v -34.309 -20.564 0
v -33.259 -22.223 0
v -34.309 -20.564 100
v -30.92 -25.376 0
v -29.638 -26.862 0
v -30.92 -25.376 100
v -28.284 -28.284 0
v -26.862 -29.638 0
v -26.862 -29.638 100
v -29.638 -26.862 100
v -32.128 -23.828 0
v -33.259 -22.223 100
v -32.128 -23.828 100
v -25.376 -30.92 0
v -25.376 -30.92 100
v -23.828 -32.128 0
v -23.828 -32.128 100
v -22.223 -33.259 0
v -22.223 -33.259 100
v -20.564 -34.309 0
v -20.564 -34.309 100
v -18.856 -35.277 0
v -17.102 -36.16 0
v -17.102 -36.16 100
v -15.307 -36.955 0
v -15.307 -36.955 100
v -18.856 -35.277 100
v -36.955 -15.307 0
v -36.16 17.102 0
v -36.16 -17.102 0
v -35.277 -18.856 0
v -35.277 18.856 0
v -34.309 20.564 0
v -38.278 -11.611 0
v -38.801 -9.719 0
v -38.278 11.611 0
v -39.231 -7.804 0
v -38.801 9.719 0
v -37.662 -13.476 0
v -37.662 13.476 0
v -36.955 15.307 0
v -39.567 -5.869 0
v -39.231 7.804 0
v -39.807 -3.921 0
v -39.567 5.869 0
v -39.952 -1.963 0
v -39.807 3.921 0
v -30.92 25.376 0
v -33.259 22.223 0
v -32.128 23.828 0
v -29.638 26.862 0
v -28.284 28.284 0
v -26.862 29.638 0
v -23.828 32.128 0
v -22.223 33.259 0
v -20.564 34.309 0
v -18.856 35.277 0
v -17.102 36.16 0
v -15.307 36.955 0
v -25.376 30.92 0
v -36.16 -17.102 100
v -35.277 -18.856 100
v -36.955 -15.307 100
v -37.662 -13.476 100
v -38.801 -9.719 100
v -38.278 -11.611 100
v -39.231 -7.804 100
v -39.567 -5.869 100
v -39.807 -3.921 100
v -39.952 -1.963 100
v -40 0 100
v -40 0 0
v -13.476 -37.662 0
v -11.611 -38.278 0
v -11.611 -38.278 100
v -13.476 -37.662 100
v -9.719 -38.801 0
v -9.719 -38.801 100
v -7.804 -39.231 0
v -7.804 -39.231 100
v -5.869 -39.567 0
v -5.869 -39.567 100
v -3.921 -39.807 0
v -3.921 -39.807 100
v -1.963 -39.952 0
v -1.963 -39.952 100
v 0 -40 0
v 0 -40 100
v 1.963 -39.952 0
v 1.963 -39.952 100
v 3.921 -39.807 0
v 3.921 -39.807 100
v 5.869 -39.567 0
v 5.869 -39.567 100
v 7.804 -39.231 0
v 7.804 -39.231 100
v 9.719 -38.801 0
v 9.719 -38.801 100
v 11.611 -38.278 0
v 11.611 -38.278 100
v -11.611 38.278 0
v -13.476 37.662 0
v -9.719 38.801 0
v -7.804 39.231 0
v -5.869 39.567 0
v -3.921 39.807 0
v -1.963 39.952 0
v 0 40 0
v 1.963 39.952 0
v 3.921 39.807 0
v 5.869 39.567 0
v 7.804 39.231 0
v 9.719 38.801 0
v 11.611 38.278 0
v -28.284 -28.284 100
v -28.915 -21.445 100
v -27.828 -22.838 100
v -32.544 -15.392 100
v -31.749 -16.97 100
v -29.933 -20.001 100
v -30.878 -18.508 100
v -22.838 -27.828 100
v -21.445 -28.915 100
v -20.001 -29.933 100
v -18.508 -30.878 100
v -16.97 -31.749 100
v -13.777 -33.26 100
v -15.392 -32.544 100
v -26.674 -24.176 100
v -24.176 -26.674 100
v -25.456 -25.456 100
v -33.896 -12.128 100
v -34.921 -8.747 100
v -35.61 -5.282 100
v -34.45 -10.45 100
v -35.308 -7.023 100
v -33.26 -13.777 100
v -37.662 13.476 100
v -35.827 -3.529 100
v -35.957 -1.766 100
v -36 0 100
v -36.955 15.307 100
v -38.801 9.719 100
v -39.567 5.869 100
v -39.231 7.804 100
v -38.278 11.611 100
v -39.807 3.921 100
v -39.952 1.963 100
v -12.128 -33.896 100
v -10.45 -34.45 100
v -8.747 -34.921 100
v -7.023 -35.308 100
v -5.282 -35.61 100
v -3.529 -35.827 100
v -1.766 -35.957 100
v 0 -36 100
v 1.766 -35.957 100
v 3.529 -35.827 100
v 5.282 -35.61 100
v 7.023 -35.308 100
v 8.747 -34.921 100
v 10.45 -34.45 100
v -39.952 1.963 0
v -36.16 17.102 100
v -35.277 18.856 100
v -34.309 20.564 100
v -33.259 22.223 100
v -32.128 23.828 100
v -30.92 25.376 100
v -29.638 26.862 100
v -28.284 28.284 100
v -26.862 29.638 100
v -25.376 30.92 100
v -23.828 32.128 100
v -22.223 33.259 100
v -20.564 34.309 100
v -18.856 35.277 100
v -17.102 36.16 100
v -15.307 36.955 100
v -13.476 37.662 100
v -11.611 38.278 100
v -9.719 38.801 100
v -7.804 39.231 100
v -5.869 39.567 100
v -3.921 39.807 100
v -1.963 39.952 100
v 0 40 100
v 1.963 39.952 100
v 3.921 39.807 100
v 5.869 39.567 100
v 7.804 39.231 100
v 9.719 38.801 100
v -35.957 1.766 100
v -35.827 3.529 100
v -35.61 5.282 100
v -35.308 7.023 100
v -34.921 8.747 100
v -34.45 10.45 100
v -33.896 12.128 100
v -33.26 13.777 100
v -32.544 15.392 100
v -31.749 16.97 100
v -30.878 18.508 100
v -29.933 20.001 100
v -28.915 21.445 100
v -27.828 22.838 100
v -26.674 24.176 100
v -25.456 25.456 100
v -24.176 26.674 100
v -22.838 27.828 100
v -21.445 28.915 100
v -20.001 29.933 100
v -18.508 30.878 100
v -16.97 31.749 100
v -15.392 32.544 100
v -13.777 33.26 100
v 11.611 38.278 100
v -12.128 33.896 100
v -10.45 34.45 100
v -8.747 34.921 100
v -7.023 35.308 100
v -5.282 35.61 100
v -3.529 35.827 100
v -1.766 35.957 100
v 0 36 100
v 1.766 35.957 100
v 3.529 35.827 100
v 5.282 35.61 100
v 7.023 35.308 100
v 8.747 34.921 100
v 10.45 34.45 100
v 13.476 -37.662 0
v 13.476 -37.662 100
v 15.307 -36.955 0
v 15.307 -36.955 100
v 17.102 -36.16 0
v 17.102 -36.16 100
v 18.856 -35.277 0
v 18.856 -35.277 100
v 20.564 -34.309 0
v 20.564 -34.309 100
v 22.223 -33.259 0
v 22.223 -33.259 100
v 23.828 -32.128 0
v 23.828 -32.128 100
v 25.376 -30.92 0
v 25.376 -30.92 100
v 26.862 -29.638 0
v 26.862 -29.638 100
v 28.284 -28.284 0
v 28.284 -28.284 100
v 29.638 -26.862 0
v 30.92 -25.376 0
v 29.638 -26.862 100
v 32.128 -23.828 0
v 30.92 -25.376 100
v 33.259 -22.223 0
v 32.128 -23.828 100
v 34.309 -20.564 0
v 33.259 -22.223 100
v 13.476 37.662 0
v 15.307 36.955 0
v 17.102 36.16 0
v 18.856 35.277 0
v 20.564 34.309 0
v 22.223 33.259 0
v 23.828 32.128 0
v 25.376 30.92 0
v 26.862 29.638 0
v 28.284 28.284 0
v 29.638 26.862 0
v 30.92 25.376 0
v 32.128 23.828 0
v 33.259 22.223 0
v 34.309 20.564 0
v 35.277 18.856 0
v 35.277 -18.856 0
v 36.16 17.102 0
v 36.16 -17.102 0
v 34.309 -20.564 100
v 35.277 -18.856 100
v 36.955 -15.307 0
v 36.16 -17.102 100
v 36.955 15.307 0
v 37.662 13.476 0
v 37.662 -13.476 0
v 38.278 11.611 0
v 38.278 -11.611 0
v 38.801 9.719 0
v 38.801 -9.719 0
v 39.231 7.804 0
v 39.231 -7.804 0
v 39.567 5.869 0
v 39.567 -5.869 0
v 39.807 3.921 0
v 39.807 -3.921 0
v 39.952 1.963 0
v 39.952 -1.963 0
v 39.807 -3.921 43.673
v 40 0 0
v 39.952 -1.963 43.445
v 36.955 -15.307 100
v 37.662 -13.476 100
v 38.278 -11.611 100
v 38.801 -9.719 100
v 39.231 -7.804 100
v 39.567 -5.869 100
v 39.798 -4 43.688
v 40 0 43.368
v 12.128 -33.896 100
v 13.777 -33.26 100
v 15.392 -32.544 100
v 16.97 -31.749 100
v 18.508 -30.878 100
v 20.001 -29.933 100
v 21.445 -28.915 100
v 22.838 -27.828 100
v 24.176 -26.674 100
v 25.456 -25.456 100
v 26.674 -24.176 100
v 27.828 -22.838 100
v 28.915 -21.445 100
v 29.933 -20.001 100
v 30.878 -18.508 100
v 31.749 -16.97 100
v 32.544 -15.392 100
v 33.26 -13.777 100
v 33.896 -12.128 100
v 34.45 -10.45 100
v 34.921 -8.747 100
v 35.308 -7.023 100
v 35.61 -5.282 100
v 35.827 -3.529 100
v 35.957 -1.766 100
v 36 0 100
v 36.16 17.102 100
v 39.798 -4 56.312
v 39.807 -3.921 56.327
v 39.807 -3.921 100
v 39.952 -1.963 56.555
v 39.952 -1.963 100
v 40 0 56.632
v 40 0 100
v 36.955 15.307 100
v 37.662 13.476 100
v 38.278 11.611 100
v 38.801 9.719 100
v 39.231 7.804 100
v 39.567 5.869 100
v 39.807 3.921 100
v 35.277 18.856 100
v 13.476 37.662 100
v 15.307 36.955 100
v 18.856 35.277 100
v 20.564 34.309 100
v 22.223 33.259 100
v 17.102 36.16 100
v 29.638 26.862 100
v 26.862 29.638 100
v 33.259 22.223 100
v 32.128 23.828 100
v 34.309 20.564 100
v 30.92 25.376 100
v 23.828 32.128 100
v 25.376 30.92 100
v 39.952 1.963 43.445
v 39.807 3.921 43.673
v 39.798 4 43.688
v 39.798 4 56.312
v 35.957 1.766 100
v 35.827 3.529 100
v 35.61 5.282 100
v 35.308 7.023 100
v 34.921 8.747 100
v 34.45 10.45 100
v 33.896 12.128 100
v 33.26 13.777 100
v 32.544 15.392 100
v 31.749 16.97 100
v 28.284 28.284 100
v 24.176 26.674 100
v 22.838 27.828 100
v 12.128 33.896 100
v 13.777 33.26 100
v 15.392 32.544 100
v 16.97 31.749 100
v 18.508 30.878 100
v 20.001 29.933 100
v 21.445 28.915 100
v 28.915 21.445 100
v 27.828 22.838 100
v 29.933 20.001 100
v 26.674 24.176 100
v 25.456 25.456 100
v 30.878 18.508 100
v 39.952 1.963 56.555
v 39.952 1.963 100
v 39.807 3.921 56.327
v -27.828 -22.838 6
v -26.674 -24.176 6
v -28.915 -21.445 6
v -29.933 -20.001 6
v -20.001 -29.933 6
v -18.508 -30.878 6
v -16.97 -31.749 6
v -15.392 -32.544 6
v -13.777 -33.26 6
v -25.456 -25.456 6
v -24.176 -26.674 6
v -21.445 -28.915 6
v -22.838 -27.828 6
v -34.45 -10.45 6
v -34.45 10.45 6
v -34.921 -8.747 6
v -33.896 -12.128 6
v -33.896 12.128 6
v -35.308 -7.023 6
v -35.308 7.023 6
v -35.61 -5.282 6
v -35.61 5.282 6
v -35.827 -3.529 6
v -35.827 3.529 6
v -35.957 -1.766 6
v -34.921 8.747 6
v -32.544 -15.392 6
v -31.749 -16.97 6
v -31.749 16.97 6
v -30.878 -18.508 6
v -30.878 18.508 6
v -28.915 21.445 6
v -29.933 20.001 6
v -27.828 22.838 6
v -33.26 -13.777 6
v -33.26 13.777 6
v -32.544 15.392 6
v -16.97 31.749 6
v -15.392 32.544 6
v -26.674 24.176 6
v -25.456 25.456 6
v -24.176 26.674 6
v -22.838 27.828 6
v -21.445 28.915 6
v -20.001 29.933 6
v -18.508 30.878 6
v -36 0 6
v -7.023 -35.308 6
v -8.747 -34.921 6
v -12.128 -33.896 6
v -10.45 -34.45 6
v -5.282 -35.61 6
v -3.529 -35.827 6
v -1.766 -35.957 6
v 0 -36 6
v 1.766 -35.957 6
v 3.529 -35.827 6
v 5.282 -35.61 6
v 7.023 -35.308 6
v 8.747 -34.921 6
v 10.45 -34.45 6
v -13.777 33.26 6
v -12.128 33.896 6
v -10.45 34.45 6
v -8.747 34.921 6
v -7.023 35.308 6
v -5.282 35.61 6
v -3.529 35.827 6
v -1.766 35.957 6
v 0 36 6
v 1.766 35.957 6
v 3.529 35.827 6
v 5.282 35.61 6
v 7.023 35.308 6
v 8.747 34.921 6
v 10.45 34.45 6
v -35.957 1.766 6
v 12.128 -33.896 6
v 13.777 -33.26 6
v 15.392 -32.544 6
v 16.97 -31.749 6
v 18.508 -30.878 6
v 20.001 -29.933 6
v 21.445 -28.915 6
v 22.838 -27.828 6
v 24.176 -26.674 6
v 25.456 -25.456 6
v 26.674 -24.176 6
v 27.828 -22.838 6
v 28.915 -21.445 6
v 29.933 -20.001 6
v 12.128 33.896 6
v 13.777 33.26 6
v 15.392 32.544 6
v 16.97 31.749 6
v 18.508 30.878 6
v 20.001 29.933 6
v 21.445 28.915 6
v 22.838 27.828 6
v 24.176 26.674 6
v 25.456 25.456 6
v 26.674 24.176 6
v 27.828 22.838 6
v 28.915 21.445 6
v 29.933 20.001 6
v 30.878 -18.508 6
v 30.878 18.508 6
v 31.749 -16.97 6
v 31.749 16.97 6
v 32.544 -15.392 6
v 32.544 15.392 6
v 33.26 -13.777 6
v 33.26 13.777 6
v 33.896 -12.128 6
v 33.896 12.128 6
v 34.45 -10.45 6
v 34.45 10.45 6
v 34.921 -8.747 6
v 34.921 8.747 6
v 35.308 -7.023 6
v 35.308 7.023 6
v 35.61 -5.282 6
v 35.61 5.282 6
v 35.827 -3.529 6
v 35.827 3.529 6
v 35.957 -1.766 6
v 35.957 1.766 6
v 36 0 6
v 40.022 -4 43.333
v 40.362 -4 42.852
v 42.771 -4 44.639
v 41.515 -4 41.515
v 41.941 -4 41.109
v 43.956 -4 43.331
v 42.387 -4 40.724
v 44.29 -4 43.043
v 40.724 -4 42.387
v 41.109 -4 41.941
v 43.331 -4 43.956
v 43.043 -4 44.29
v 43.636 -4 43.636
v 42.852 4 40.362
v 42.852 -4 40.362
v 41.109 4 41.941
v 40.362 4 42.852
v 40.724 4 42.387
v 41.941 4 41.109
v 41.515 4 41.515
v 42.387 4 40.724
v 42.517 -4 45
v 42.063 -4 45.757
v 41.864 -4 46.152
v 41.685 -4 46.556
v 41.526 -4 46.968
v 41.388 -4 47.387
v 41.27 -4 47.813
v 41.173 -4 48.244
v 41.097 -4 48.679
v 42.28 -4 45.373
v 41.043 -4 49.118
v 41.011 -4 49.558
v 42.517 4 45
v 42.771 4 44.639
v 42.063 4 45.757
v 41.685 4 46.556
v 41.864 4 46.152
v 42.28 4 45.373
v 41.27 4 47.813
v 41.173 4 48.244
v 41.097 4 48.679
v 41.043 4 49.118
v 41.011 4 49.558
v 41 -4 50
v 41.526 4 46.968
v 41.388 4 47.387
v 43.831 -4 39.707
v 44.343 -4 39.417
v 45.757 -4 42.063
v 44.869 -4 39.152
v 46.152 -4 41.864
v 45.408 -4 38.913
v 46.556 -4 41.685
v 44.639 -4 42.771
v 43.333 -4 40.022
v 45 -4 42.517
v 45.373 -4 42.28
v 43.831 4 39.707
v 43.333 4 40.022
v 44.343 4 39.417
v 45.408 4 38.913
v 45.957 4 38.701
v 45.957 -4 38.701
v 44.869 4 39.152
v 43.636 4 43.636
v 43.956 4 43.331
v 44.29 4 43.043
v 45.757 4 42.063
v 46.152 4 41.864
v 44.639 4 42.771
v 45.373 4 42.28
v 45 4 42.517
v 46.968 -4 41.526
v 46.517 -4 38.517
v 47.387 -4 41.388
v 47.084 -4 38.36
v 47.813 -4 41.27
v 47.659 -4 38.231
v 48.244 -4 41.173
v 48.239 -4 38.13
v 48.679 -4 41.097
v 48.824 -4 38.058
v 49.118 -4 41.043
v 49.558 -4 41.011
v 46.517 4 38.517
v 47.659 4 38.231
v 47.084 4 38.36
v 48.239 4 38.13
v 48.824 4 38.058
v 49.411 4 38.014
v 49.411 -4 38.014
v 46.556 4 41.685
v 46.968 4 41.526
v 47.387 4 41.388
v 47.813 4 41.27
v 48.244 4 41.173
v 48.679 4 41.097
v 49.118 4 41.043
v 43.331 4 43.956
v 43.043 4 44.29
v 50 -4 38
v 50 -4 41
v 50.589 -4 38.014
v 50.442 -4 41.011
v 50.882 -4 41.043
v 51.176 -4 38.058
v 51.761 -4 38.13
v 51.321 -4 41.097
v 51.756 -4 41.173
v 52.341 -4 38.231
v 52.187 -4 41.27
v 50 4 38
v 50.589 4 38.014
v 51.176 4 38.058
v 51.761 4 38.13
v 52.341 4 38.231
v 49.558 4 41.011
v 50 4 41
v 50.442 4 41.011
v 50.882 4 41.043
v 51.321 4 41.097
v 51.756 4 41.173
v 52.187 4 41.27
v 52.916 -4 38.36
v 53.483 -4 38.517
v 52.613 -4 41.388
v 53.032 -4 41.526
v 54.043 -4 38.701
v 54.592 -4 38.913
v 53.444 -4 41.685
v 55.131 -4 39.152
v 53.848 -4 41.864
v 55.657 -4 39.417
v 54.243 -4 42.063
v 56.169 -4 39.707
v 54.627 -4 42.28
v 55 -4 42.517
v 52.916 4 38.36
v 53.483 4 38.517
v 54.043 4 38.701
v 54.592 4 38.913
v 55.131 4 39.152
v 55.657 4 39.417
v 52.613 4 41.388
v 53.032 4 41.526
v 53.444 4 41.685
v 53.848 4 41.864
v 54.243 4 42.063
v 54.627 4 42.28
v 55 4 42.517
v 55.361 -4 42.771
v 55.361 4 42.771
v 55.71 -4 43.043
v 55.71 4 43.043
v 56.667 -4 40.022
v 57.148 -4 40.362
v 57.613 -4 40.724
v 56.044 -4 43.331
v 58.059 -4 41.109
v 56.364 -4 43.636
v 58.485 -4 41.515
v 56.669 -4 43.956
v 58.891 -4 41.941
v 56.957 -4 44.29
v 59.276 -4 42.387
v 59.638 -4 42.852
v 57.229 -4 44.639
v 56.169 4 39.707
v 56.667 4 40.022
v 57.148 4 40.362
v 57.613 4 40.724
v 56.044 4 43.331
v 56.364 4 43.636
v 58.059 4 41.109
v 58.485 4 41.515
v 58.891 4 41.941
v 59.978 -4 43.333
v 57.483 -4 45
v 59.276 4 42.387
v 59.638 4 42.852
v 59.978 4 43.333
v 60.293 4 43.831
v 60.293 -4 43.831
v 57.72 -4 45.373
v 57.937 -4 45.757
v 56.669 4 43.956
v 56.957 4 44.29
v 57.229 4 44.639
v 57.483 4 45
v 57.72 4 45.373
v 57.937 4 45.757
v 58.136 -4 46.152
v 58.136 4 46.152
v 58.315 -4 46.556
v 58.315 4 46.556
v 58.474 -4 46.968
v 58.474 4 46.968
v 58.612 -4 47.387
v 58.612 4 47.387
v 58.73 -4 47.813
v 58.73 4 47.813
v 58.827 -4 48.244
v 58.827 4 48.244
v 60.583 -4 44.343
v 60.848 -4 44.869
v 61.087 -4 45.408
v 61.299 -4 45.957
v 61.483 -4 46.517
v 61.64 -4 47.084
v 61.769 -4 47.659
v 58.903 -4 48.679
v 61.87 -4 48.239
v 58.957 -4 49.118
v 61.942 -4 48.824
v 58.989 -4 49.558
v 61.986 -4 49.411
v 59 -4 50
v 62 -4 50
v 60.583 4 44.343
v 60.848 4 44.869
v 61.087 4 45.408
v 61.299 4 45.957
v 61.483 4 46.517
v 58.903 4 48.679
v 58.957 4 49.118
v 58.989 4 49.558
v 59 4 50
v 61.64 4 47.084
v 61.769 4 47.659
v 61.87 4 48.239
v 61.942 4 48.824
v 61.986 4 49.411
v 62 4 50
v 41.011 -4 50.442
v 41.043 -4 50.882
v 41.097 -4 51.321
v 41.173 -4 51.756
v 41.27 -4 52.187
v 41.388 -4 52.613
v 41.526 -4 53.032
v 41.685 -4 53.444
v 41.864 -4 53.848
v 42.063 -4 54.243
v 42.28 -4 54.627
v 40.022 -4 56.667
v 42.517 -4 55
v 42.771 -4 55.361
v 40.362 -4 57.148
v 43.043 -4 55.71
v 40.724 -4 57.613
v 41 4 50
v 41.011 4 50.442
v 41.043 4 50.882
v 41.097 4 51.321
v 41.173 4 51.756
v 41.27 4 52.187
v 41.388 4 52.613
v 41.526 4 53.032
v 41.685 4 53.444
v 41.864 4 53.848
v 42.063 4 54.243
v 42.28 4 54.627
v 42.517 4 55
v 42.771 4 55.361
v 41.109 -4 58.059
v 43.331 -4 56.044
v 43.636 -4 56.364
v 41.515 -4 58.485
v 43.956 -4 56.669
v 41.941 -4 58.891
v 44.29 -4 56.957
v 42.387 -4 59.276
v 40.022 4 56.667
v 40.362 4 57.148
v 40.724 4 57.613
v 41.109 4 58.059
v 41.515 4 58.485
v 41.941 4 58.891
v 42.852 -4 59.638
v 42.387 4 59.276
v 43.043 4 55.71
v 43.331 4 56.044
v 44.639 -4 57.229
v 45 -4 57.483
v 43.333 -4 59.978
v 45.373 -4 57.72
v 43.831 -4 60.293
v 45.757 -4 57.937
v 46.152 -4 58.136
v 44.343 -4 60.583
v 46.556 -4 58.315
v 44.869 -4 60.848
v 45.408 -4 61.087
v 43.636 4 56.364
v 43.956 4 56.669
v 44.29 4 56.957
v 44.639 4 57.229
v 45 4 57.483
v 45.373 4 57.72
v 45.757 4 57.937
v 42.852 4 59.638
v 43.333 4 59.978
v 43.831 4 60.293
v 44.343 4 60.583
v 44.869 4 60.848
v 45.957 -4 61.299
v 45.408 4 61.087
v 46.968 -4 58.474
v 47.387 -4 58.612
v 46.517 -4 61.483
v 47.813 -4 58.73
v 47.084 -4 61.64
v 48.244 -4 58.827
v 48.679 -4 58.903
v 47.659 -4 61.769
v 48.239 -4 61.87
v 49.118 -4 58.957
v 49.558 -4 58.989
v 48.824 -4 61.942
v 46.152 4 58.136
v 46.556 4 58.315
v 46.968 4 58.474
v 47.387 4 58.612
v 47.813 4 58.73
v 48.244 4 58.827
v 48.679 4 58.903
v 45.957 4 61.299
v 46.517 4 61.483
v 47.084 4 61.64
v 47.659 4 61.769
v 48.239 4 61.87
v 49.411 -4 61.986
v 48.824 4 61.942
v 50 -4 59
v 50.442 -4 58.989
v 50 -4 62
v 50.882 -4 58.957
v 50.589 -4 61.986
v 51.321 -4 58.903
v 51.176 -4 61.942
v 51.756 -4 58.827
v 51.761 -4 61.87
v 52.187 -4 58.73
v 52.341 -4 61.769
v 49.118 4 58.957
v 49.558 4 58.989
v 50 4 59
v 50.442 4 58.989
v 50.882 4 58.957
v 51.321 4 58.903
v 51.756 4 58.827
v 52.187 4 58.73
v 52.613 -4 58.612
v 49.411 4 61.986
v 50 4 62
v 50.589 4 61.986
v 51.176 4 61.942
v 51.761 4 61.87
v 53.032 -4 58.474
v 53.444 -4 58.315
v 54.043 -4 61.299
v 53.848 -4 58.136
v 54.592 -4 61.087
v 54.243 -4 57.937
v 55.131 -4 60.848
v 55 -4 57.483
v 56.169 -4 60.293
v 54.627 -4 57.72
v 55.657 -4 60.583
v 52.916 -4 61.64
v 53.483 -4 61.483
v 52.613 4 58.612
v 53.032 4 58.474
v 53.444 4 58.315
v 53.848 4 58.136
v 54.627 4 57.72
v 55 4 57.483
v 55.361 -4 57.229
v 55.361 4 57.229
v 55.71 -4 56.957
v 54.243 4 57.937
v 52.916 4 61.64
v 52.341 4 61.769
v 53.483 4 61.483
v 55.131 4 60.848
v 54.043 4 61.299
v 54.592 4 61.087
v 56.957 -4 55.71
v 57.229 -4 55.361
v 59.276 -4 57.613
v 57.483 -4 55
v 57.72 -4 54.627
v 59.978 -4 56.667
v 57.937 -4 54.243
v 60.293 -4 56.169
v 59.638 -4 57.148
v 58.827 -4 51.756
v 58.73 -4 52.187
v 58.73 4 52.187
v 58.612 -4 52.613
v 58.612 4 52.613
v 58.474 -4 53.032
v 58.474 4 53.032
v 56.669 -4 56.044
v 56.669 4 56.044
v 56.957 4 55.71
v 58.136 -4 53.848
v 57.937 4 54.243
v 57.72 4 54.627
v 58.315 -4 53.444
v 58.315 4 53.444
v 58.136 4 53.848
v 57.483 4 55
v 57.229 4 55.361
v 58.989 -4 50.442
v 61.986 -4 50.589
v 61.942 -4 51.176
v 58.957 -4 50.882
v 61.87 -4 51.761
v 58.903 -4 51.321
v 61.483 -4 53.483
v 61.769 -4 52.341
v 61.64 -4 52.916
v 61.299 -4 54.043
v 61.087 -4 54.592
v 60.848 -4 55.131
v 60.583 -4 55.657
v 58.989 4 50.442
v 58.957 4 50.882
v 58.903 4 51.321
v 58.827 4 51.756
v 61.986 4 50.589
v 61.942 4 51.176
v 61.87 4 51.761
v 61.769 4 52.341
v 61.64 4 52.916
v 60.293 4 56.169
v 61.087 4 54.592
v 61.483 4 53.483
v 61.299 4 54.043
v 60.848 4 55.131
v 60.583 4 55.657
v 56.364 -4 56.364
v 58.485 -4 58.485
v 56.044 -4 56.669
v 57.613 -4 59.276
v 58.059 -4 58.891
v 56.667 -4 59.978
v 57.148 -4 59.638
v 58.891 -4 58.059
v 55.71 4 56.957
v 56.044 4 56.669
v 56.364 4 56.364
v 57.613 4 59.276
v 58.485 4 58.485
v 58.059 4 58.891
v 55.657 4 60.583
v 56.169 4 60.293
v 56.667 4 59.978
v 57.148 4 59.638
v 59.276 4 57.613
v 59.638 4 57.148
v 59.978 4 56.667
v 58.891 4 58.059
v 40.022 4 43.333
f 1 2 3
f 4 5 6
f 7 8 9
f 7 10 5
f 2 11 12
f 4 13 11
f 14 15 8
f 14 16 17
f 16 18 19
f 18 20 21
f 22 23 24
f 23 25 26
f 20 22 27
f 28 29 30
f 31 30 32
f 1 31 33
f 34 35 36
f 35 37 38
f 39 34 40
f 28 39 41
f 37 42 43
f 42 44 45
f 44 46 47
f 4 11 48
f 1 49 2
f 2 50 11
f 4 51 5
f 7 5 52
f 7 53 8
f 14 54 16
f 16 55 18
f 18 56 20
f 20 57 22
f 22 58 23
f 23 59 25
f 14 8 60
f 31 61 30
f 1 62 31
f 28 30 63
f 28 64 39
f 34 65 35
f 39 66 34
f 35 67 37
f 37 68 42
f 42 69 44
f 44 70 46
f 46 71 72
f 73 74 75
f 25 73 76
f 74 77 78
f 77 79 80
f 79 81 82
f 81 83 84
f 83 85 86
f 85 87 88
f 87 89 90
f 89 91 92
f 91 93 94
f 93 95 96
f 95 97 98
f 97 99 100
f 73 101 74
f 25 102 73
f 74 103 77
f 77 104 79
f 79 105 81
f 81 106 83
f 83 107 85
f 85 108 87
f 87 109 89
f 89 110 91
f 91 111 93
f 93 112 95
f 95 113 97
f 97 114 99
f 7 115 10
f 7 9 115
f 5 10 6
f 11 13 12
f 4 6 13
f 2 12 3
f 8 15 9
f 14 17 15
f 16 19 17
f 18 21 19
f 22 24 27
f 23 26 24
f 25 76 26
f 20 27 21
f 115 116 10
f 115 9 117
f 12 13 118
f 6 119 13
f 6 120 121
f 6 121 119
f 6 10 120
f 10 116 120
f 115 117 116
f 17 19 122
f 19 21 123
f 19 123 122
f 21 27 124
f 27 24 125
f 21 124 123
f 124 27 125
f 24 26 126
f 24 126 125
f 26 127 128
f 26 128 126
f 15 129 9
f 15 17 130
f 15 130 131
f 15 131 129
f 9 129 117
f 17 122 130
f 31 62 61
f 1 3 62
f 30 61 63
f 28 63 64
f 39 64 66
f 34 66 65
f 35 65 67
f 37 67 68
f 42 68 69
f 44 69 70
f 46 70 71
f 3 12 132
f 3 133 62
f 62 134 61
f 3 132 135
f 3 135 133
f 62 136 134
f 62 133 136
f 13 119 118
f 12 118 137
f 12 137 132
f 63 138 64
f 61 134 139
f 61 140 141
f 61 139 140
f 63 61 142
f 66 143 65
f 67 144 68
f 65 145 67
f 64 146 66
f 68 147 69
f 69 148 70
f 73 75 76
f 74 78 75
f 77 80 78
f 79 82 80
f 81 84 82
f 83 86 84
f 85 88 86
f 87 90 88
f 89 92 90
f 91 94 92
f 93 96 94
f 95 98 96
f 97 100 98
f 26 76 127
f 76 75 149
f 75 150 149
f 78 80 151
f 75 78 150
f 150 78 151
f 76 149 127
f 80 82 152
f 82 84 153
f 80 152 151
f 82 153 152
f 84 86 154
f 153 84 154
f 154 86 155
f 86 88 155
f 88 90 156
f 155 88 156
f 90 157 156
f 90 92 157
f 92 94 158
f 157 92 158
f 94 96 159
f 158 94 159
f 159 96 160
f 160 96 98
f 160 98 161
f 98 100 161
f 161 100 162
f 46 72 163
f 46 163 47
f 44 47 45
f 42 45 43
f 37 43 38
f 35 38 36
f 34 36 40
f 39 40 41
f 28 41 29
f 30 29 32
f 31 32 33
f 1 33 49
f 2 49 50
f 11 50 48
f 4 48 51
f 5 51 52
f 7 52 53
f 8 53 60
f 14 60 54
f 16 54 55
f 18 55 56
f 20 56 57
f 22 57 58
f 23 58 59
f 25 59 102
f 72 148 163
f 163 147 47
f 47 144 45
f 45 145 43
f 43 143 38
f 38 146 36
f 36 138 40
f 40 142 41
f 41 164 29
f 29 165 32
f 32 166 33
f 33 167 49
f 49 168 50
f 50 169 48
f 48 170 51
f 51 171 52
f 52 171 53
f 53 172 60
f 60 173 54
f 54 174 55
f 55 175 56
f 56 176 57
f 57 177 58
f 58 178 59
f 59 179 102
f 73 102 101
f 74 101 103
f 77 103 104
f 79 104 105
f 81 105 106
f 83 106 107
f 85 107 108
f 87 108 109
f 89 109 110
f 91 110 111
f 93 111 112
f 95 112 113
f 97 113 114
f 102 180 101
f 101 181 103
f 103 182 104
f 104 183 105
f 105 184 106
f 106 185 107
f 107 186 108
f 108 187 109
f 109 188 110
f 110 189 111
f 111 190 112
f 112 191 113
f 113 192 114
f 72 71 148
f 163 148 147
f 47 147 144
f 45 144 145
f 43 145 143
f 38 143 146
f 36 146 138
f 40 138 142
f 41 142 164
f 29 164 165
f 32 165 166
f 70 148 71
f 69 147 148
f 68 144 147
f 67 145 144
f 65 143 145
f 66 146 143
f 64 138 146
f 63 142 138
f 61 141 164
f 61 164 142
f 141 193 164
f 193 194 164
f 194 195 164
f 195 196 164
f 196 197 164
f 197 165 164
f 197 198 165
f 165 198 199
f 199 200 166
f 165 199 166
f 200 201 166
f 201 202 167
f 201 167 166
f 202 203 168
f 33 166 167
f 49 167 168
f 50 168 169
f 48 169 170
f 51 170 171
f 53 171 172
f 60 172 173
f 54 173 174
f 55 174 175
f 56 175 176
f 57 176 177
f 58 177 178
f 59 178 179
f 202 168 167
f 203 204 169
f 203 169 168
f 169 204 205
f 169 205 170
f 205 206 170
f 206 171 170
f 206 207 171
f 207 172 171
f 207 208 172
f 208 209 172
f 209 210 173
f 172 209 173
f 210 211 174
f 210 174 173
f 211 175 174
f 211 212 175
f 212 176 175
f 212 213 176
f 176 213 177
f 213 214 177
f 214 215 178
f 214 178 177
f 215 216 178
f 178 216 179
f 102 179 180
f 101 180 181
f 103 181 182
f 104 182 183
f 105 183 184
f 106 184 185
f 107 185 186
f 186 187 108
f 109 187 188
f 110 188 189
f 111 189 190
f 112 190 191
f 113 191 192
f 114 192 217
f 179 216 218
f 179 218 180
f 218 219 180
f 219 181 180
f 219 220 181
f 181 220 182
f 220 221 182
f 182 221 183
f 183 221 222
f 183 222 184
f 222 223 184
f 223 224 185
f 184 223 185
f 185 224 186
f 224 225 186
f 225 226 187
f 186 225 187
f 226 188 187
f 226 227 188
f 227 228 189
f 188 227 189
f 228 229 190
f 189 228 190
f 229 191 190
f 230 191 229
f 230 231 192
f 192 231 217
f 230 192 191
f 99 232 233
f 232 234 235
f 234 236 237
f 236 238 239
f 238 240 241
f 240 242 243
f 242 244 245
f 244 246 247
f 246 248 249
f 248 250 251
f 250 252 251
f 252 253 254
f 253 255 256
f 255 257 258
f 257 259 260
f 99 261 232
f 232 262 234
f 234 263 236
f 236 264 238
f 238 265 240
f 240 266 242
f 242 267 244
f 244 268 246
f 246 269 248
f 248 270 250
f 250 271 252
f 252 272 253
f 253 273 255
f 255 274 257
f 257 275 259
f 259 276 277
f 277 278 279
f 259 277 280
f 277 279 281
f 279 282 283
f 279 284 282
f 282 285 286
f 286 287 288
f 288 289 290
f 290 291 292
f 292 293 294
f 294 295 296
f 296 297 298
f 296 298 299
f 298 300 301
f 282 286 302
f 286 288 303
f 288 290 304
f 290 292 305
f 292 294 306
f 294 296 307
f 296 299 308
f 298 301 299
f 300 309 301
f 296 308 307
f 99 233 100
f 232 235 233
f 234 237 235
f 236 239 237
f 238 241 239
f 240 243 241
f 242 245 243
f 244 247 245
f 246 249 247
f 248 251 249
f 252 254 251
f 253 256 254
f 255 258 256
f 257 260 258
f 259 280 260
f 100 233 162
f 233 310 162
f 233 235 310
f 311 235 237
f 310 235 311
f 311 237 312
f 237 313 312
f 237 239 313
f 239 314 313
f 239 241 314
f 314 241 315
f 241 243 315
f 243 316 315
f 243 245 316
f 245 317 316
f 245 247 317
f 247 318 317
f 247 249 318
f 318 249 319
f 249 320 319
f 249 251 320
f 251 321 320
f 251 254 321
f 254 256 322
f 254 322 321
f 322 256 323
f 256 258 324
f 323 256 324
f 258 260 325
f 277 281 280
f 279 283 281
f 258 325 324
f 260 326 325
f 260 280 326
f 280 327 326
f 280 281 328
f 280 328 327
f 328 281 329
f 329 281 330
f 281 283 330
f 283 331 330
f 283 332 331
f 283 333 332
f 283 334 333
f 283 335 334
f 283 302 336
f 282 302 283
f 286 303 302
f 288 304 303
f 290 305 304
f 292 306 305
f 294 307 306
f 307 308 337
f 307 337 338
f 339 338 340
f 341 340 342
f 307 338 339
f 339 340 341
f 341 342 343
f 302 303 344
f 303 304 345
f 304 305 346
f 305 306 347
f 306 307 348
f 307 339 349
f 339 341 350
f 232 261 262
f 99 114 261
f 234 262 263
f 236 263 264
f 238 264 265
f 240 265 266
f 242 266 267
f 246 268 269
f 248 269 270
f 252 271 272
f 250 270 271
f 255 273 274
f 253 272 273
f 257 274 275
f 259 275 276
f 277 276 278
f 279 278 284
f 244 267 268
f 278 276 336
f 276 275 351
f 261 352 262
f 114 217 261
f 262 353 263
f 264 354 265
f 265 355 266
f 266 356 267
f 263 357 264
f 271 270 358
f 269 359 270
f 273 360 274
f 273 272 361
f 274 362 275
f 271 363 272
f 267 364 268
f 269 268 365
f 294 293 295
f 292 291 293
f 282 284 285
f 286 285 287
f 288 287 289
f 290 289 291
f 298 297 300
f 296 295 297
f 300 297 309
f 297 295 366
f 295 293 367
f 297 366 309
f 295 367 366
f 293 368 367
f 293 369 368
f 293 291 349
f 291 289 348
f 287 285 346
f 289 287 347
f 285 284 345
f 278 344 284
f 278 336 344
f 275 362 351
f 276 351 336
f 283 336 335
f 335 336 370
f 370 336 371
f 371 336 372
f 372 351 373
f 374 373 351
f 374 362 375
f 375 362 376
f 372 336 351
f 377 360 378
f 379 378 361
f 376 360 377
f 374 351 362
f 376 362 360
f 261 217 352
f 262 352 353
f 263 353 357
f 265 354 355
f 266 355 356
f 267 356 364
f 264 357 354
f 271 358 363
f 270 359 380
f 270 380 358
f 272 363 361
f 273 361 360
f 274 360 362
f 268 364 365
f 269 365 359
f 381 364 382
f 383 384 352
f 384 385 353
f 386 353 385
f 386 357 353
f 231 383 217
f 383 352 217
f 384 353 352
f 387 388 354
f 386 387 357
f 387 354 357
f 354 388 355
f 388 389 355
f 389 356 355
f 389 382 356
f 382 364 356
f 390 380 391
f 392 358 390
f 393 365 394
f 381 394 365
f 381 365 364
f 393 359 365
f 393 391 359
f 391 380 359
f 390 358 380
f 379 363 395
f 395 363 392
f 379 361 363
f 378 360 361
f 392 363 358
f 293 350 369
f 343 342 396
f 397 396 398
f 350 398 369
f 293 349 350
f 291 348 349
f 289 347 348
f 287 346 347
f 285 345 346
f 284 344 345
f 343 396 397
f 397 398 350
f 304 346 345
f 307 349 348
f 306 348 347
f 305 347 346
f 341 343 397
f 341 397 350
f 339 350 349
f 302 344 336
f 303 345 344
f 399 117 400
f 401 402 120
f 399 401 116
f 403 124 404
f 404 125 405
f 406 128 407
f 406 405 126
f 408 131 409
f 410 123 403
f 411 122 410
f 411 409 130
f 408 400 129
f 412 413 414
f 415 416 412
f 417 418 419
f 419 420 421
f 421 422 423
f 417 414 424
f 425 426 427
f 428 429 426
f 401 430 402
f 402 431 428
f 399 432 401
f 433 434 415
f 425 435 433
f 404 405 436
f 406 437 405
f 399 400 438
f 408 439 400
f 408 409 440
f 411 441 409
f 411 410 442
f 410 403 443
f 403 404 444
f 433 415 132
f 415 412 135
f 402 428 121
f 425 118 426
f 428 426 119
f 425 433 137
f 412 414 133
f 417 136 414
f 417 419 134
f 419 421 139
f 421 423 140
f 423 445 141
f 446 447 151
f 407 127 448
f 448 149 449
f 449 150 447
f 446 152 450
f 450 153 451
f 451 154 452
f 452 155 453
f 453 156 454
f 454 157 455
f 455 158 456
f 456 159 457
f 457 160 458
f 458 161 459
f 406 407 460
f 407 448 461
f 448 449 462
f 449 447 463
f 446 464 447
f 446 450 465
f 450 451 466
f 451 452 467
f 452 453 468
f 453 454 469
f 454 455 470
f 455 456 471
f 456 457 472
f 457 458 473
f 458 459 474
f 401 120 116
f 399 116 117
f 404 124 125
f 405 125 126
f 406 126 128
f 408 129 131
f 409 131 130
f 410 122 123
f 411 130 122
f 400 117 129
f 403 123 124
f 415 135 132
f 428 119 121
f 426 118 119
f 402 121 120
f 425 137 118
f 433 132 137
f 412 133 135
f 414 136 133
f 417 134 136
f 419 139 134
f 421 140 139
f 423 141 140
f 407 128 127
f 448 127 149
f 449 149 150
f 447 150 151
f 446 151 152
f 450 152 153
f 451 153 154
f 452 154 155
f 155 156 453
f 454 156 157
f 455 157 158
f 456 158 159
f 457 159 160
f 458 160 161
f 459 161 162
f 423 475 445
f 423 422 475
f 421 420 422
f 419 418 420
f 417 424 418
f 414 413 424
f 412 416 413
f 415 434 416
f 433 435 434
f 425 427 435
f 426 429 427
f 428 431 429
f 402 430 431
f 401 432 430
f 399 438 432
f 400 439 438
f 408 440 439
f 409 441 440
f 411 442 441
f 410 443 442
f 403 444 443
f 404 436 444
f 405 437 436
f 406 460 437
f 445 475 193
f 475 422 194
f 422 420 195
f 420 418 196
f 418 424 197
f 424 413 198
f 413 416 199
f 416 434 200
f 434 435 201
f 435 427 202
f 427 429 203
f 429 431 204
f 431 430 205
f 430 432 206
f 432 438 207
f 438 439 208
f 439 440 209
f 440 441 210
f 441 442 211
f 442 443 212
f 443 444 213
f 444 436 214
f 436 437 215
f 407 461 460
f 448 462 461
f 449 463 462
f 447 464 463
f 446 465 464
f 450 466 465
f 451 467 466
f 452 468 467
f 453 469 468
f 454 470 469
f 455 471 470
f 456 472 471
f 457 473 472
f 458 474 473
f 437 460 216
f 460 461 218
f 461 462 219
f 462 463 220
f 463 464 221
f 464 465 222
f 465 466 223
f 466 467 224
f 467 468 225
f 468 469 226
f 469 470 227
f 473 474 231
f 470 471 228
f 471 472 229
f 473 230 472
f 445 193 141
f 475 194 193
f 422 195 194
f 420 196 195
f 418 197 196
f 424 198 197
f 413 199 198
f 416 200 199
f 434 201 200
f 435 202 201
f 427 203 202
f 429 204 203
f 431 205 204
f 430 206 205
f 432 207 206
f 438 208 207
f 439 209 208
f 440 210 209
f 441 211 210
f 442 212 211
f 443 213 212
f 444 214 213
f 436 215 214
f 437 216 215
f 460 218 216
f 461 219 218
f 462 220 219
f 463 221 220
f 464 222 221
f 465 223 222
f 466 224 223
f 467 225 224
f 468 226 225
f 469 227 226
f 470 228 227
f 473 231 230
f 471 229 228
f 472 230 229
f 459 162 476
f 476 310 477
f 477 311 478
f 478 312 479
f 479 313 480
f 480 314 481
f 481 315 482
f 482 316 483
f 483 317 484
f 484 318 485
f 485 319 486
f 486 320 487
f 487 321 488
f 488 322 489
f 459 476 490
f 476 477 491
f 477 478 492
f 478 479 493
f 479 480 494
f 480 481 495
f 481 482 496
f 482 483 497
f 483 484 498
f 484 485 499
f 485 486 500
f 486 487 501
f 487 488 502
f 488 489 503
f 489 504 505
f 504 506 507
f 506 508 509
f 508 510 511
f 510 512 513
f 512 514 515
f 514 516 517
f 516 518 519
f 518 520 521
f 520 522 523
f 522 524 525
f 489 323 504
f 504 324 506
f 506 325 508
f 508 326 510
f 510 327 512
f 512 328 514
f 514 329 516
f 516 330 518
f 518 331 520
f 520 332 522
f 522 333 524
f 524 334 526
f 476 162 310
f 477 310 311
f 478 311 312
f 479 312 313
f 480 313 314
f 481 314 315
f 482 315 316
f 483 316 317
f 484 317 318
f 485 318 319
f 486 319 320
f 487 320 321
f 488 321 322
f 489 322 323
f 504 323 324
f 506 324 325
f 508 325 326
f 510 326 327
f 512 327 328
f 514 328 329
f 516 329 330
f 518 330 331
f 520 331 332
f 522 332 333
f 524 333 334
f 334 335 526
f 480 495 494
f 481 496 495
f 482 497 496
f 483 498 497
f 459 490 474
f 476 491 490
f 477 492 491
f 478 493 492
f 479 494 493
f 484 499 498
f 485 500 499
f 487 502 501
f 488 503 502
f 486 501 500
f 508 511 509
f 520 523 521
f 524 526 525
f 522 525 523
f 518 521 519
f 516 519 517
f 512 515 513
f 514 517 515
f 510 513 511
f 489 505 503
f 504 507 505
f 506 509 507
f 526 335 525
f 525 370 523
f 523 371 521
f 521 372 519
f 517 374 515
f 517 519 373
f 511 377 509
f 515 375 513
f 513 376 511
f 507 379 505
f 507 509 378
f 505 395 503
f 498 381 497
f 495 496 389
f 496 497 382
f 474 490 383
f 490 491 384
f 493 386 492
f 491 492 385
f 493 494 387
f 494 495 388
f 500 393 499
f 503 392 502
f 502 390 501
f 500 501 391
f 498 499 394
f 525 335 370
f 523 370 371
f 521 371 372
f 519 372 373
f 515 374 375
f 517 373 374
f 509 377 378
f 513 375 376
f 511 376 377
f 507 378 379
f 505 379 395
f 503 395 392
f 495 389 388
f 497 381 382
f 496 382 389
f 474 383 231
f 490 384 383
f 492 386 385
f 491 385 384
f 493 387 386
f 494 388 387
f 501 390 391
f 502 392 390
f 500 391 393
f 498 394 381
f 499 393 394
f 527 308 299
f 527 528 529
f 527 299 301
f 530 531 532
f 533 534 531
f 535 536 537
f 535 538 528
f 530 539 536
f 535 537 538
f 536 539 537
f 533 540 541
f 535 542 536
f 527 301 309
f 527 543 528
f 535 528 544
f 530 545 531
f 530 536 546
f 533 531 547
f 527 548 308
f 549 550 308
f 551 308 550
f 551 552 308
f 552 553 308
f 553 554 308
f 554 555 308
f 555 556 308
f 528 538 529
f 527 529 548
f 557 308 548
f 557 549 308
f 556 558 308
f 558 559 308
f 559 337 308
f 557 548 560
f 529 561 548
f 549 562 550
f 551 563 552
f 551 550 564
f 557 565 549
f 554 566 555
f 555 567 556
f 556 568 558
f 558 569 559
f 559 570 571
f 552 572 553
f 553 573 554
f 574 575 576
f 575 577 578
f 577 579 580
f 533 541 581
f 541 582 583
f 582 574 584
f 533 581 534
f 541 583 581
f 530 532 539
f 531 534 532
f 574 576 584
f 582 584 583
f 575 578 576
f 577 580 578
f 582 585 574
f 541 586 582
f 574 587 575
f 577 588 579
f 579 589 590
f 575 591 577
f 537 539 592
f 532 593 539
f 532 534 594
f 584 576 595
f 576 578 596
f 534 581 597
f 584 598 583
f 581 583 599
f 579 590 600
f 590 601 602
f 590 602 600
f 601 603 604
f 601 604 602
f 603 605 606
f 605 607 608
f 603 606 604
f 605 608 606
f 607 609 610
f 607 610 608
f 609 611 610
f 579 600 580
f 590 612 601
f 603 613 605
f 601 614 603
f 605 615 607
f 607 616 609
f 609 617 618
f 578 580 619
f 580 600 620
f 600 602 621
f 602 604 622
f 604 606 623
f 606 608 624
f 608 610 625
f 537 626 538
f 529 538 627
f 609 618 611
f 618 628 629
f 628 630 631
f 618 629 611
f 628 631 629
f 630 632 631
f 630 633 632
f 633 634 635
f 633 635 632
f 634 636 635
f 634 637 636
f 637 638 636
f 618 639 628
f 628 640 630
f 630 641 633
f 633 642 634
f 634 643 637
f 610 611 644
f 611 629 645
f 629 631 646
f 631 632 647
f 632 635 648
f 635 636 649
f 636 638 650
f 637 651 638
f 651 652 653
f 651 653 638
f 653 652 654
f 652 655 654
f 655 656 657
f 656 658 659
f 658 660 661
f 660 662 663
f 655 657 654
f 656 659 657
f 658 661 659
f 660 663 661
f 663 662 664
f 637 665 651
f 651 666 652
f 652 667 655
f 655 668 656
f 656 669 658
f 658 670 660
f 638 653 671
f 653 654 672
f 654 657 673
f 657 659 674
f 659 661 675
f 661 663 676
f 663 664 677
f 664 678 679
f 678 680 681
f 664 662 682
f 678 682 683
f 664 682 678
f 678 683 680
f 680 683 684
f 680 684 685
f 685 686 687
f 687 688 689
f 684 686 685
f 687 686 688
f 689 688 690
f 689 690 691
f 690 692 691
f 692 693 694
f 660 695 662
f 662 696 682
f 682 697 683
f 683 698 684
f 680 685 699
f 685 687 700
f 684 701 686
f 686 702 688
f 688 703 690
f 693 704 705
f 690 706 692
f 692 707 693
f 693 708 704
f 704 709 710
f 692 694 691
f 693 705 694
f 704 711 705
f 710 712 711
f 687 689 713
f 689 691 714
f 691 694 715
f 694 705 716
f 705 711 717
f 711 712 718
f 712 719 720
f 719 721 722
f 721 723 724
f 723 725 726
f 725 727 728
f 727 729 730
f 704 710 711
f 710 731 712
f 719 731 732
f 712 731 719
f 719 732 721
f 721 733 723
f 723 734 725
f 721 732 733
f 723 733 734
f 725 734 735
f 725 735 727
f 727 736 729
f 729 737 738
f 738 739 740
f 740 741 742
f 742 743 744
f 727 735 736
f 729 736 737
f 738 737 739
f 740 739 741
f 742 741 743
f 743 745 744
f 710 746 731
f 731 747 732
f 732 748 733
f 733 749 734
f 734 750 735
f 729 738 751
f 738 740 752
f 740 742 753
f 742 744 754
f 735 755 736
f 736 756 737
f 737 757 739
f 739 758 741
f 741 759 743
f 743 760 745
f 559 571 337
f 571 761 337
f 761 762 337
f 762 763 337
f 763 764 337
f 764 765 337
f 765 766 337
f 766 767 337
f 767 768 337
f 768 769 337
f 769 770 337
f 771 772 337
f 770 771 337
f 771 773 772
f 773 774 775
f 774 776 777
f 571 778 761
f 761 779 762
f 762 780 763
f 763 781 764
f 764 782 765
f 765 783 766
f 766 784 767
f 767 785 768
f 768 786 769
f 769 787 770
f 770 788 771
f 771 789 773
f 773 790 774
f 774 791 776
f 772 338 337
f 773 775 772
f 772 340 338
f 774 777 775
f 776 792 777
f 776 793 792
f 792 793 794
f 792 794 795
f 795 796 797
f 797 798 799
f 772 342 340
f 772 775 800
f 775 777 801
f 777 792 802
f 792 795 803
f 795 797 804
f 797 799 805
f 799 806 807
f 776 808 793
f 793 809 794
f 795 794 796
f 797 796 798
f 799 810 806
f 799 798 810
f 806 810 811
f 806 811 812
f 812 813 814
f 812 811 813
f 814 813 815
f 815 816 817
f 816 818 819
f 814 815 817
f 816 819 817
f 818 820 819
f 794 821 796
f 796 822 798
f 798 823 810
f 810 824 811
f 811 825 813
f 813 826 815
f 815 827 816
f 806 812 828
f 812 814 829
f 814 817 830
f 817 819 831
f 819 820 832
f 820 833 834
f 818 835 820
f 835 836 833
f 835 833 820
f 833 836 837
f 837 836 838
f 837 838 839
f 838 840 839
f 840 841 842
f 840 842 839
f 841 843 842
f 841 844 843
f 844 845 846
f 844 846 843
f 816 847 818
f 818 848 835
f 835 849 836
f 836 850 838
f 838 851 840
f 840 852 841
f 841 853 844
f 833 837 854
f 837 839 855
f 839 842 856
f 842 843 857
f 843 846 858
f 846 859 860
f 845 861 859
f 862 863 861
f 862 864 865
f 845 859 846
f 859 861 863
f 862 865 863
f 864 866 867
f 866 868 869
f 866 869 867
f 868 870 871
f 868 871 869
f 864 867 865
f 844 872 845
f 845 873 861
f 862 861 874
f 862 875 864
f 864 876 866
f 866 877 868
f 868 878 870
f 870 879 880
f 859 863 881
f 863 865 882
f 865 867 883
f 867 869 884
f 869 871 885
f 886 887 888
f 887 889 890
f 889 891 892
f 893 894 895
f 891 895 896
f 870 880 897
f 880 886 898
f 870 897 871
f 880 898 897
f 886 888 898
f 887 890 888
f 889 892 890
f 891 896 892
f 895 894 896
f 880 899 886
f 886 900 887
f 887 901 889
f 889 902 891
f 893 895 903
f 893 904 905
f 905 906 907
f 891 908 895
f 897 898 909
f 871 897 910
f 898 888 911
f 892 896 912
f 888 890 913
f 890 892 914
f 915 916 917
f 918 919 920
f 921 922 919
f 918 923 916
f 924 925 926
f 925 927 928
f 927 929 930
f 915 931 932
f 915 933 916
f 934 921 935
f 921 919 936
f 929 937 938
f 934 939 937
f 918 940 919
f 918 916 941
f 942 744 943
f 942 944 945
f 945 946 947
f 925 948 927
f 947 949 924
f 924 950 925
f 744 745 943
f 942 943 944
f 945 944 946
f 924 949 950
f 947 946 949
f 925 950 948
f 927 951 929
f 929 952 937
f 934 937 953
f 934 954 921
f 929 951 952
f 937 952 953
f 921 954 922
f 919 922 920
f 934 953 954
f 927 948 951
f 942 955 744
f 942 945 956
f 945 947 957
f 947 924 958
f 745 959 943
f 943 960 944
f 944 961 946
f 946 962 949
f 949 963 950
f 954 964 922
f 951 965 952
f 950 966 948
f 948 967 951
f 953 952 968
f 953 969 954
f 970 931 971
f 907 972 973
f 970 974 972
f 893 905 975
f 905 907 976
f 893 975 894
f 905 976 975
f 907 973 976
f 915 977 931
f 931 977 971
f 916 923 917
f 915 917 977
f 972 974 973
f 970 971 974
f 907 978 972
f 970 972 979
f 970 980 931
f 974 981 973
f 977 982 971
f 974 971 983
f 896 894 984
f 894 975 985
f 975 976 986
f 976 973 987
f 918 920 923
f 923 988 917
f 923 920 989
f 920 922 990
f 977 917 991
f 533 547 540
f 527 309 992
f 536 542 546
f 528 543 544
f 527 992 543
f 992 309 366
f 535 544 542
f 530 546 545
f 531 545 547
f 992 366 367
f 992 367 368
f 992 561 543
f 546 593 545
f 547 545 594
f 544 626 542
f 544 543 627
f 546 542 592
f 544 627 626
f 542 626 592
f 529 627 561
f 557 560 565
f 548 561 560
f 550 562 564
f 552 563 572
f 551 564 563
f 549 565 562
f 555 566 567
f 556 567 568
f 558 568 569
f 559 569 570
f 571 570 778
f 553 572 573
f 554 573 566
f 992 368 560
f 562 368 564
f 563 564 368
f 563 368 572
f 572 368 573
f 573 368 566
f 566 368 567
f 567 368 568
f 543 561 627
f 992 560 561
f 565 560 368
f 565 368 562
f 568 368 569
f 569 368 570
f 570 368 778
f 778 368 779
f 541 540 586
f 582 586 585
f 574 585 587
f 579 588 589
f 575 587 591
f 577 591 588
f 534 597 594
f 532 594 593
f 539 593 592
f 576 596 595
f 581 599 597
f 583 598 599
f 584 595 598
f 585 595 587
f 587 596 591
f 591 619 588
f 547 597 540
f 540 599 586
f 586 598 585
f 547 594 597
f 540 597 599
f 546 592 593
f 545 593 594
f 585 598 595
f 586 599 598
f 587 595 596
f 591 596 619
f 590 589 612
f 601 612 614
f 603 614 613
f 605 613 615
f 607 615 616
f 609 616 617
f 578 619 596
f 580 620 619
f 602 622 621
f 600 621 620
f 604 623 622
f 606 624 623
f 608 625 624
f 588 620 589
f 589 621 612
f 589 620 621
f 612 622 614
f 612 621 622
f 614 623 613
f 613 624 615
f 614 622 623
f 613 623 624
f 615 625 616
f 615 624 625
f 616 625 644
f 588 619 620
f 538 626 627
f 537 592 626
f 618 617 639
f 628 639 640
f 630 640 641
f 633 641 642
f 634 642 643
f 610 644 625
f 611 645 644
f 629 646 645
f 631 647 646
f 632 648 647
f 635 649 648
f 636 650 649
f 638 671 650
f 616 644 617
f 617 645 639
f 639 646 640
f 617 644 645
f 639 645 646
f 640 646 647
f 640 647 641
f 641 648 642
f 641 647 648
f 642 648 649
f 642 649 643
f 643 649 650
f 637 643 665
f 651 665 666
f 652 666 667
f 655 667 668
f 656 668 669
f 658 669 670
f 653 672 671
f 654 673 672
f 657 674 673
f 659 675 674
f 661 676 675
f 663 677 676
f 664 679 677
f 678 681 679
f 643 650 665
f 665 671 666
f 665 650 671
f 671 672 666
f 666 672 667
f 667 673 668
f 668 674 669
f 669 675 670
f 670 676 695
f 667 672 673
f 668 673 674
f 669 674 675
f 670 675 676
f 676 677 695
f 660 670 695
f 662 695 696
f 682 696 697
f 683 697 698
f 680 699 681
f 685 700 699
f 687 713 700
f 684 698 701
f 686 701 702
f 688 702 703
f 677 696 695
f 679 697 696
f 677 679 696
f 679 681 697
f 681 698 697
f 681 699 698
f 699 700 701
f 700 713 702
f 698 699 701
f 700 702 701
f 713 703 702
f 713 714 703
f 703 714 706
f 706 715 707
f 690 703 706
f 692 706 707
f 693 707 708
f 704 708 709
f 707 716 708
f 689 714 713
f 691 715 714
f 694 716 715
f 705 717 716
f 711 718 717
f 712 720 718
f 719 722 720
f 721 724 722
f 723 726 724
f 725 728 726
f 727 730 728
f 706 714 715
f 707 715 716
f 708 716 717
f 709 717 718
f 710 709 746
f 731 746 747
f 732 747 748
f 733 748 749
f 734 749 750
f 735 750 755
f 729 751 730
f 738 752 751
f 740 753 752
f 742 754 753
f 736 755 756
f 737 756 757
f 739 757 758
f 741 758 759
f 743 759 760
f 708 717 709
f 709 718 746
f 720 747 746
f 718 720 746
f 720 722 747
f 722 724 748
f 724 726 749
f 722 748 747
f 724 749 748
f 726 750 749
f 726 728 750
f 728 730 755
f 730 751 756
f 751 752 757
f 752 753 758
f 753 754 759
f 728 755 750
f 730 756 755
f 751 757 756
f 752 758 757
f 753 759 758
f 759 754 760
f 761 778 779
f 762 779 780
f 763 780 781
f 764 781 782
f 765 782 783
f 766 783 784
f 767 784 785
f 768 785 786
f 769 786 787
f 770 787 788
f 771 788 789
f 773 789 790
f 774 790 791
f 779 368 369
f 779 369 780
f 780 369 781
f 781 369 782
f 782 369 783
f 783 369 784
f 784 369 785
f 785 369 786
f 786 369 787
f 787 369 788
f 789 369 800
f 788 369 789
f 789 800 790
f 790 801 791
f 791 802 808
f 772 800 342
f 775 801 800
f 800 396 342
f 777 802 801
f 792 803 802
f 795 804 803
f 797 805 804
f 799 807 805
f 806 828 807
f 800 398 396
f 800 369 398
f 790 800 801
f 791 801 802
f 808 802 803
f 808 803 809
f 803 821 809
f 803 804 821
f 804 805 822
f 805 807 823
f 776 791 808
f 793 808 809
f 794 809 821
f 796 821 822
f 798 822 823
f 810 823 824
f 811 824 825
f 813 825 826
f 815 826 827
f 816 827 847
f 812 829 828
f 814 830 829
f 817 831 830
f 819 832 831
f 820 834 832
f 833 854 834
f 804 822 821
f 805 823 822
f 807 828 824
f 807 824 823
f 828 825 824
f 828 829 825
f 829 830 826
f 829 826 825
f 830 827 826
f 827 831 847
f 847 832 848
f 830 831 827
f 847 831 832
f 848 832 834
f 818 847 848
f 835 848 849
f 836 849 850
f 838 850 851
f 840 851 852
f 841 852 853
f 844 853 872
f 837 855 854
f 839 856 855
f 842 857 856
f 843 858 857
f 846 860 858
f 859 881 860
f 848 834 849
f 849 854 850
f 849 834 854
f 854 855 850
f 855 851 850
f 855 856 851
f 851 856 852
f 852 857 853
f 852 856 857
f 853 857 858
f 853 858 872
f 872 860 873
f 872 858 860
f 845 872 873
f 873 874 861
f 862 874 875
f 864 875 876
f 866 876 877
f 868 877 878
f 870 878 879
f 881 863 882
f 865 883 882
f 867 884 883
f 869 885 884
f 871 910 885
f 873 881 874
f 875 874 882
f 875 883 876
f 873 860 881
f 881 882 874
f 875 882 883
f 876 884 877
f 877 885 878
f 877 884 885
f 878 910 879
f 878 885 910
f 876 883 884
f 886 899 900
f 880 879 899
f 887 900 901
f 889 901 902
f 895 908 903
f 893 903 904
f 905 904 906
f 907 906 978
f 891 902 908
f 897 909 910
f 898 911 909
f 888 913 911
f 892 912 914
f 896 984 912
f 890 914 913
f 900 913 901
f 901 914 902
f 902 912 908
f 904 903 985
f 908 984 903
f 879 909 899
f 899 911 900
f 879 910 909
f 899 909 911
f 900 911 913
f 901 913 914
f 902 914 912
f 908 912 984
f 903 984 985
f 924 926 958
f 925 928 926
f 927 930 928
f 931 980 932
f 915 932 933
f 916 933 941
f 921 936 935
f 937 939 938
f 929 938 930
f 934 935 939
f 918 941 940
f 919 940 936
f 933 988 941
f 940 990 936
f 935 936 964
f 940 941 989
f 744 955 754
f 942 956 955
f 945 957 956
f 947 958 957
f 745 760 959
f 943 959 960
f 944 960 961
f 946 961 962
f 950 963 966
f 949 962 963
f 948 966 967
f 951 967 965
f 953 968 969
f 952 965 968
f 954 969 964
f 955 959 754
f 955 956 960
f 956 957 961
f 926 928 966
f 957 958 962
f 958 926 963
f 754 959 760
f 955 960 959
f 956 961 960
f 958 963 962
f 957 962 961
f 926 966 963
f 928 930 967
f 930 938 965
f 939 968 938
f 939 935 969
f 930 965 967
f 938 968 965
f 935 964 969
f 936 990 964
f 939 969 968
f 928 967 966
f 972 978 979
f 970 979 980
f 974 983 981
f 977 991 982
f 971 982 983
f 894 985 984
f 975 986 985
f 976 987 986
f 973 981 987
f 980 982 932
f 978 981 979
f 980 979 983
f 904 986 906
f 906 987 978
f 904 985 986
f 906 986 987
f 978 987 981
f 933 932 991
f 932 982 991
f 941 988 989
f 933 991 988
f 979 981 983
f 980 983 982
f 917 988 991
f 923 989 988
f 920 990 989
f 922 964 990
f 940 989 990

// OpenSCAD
$fn = 128;

outer_diameter = 80;
cup_height = 100;
wall_thickness = 4;
bottom_thickness = 6;

handle_outer_radius = 12;
handle_inner_radius = 9;
handle_thickness = 8;
handle_center_x = 50;

union() {
    // 上部を開け、底に6mmの厚みを残す
    difference() {
        cylinder(d = outer_diameter, h = cup_height);

        translate([0, 0, bottom_thickness])
            cylinder(
                d = outer_diameter - 2 * wall_thickness,
                h = cup_height - bottom_thickness + 1
            );
    }

    // 側面に接続するリング状の取手
    translate([handle_center_x, 0, cup_height / 2])
        rotate([90, 0, 0])
            linear_extrude(height = handle_thickness, center = true)
                difference() {
                    circle(r = handle_outer_radius);
                    circle(r = handle_inner_radius);
                }
}
